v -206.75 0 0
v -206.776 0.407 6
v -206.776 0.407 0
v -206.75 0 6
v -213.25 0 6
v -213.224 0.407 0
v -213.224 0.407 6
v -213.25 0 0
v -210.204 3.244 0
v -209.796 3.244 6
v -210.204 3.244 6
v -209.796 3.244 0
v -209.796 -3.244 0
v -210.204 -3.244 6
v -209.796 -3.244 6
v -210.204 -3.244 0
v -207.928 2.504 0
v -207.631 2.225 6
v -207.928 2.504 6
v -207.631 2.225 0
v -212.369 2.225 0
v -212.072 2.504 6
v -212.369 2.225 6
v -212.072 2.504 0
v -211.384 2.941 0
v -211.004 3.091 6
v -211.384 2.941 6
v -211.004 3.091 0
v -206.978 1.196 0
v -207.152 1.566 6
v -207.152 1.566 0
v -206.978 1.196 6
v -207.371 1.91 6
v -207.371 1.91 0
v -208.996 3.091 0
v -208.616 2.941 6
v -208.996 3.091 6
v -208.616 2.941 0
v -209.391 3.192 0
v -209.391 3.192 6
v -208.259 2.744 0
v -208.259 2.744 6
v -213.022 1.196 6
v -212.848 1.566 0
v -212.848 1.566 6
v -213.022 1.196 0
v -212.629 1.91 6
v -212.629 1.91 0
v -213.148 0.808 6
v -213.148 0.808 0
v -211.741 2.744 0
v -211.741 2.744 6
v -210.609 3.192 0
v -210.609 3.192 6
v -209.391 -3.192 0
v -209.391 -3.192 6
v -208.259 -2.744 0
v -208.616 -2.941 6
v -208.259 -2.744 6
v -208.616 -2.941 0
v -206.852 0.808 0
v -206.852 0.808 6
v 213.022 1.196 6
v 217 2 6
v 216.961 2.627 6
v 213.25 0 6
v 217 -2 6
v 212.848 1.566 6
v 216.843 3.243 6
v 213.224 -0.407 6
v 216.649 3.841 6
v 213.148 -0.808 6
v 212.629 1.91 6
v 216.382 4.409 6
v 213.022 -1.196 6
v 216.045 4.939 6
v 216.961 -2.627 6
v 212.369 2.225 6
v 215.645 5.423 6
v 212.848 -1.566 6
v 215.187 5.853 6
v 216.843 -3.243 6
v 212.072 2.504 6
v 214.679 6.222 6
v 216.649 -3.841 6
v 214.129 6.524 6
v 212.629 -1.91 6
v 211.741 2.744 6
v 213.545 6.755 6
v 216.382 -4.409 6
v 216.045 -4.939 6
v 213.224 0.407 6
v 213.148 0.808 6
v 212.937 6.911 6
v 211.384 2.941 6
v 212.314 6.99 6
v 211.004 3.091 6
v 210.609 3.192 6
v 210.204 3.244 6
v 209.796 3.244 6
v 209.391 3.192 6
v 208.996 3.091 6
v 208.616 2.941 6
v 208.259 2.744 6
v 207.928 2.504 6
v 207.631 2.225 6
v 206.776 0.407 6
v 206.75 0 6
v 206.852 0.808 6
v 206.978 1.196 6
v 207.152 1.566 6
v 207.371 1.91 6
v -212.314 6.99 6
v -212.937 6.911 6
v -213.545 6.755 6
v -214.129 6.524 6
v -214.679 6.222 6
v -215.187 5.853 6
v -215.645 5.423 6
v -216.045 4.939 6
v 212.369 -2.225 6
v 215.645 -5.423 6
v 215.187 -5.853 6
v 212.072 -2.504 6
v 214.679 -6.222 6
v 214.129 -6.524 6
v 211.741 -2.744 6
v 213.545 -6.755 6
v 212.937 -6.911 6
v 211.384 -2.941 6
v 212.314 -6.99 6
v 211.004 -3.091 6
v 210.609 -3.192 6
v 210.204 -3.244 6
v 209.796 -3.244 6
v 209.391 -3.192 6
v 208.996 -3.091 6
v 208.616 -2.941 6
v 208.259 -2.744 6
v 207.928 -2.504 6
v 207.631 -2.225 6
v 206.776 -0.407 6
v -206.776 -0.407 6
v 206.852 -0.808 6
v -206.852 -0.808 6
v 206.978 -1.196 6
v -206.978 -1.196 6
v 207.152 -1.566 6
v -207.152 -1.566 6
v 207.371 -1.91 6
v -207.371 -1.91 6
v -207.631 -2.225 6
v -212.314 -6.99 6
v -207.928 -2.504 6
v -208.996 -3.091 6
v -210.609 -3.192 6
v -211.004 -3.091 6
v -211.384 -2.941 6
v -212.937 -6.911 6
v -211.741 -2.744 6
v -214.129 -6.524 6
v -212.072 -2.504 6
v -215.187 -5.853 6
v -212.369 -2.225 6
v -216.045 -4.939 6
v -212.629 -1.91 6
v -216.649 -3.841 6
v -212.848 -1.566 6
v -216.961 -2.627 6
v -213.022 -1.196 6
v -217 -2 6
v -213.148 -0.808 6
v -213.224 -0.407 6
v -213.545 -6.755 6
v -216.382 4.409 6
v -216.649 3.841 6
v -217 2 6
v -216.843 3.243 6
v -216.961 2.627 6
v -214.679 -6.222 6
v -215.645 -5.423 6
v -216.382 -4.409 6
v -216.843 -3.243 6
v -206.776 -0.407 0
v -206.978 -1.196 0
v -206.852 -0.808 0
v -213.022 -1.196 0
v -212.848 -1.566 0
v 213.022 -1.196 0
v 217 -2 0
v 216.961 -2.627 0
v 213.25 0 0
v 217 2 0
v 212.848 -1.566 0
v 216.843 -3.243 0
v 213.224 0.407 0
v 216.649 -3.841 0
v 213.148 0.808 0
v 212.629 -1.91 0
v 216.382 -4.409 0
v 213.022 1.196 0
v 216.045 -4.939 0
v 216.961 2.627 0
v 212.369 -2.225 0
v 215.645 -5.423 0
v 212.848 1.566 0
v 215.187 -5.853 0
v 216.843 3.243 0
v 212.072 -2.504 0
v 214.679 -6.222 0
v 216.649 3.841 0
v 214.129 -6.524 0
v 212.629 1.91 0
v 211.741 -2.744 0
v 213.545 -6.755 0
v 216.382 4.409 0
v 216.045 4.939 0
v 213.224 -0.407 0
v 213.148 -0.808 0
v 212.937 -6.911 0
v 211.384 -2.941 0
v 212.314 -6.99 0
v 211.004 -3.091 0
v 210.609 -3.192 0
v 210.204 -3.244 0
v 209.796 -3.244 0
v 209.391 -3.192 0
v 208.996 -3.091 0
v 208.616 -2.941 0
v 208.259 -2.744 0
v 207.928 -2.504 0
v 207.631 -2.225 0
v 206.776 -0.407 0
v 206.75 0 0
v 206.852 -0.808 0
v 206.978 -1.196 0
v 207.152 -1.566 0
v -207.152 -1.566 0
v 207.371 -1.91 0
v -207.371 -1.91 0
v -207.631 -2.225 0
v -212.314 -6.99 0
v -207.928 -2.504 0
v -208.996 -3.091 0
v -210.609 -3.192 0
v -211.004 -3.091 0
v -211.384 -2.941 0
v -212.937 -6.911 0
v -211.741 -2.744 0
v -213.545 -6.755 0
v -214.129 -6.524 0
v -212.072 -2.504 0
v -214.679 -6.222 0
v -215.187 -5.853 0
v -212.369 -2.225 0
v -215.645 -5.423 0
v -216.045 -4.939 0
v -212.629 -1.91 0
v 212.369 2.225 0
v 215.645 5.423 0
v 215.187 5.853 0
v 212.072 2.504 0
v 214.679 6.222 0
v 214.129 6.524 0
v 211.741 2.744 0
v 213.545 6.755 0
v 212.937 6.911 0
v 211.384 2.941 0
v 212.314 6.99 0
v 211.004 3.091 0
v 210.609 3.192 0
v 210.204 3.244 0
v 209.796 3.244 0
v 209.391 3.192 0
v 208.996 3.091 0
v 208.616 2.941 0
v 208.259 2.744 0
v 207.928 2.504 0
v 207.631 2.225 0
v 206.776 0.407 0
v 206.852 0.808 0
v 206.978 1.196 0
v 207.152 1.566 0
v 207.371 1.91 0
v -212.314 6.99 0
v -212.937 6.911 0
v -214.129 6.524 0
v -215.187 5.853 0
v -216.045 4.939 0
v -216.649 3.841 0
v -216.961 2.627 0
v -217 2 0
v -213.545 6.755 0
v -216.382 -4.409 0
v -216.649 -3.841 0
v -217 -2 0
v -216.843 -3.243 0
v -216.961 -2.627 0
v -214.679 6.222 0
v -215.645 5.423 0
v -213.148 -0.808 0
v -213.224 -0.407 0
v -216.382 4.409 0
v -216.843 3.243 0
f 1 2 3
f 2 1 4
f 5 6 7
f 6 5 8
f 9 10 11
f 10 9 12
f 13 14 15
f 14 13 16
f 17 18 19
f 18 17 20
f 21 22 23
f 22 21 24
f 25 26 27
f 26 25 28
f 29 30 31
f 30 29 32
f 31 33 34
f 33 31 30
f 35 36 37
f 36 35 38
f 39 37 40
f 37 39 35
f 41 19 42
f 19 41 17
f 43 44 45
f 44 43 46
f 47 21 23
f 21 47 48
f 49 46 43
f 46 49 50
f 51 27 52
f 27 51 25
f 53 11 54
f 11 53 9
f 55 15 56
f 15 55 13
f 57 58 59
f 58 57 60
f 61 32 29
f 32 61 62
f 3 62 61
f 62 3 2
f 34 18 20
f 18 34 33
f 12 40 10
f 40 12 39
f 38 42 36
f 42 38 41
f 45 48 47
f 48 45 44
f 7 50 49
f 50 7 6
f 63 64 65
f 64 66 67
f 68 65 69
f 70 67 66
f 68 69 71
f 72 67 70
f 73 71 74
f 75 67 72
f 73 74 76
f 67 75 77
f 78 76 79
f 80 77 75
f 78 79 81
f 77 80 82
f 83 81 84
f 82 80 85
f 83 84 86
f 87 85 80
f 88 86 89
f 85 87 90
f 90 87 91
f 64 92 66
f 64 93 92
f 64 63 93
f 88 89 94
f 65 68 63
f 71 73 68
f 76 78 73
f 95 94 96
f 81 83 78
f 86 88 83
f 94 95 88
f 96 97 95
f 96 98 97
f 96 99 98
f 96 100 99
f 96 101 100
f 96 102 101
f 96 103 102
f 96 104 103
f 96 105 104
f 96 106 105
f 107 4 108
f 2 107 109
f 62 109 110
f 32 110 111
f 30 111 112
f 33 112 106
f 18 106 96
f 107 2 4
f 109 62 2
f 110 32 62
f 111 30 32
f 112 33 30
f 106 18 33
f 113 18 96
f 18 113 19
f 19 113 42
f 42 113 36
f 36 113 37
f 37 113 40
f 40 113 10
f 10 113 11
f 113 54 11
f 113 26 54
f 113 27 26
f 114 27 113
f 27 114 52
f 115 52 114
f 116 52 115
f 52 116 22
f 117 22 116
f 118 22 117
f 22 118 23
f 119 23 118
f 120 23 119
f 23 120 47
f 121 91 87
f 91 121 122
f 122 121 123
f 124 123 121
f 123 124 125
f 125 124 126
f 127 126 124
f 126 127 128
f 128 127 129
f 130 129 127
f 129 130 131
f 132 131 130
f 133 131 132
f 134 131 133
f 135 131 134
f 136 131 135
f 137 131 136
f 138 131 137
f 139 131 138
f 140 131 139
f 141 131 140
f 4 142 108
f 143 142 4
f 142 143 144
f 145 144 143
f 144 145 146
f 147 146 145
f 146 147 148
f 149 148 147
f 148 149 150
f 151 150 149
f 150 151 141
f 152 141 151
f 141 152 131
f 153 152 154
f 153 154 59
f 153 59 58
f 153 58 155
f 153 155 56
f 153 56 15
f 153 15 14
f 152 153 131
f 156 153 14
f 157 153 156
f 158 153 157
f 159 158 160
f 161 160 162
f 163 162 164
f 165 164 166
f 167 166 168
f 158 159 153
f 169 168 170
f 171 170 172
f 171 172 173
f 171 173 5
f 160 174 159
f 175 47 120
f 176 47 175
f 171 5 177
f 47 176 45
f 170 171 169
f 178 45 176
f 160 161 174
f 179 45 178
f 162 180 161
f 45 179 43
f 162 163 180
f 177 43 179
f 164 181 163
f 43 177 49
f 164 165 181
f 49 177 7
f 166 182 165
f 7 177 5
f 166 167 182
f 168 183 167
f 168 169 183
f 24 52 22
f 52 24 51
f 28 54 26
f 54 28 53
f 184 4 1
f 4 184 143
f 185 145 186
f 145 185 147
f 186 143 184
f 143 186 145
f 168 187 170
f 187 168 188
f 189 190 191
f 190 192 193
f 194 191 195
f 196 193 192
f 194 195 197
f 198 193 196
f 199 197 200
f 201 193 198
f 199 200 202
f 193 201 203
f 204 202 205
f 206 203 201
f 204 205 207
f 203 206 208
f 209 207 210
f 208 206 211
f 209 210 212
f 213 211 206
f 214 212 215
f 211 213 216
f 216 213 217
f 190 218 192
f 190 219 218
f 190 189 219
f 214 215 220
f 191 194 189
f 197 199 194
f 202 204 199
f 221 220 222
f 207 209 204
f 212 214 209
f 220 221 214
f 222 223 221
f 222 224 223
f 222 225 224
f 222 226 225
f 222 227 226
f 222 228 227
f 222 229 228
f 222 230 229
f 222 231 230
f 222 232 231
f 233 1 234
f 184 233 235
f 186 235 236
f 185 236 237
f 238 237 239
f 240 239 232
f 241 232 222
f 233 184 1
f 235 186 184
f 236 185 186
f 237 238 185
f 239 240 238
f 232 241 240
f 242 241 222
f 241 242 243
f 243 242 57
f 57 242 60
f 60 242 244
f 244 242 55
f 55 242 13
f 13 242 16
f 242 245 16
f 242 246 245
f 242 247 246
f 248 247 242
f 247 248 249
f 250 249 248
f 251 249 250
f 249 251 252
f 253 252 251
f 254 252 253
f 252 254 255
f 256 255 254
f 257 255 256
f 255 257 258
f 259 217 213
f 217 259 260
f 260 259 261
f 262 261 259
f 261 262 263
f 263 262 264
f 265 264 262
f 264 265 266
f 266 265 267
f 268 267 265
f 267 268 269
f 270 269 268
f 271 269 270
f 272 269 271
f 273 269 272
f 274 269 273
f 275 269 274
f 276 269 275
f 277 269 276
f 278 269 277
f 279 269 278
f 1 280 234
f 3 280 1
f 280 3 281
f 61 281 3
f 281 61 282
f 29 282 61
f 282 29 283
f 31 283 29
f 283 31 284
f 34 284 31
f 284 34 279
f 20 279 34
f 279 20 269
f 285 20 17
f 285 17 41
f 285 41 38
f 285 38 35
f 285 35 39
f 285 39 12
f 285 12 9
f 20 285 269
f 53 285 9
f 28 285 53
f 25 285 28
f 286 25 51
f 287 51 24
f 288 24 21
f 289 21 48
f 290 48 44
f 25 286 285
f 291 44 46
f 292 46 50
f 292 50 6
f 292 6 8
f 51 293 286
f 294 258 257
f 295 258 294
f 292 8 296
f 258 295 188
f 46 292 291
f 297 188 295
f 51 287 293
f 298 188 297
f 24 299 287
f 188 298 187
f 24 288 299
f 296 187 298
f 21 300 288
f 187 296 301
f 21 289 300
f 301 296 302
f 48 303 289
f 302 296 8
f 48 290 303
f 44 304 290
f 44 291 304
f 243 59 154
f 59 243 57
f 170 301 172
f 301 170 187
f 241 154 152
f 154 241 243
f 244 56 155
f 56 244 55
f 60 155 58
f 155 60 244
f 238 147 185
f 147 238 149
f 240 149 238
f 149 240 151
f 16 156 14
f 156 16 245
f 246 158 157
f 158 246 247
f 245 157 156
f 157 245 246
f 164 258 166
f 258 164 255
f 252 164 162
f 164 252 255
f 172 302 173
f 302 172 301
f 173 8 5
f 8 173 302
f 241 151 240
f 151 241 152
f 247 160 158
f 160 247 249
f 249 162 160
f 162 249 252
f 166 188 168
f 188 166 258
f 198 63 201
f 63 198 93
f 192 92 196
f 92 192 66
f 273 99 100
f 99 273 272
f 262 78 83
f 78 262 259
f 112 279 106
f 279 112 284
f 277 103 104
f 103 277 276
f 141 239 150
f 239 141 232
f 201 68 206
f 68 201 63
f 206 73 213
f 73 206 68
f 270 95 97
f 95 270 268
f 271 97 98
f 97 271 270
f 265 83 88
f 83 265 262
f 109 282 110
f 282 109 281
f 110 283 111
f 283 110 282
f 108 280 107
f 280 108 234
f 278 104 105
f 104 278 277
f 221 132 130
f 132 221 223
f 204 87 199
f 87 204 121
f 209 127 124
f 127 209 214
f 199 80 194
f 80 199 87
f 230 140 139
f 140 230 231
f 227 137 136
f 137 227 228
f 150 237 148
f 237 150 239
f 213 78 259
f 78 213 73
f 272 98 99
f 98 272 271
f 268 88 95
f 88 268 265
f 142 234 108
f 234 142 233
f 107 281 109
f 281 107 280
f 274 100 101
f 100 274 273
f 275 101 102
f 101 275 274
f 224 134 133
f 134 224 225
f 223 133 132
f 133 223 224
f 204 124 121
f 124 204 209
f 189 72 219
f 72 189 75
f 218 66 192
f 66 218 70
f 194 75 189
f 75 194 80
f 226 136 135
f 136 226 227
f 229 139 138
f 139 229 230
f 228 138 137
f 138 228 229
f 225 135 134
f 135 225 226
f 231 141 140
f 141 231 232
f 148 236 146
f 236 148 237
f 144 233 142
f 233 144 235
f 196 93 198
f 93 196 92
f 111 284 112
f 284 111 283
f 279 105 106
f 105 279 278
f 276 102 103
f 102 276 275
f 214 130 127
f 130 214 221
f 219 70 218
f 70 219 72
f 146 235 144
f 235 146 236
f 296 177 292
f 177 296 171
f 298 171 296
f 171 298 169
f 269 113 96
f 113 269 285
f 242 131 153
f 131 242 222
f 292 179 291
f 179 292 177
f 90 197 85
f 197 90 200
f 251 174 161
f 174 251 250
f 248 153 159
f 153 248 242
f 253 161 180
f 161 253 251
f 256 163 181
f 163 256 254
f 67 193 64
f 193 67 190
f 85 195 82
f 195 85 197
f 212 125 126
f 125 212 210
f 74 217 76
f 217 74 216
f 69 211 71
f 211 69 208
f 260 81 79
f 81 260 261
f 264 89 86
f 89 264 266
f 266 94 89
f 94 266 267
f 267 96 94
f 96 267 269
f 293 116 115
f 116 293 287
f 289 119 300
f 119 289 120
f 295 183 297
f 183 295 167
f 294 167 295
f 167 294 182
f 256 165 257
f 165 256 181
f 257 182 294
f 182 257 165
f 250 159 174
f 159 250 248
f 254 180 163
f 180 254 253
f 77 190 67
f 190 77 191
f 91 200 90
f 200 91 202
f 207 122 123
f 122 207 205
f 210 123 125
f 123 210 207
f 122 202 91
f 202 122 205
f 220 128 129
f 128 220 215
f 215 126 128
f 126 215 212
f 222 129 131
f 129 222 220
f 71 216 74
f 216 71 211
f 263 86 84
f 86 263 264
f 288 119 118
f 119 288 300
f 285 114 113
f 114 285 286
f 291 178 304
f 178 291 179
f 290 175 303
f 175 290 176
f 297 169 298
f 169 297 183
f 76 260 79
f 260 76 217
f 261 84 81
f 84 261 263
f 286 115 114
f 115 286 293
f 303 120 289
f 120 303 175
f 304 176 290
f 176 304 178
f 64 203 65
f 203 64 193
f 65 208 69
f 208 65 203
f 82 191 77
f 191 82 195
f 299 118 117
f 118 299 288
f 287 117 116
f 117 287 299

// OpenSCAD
$fn = 50;


difference() {
	union() {
		hull() {
			translate(v = [-212.0000000000, 2.0000000000, 0]) {
				cylinder(h = 6, r = 5);
			}
			translate(v = [212.0000000000, 2.0000000000, 0]) {
				cylinder(h = 6, r = 5);
			}
			translate(v = [-212.0000000000, -2.0000000000, 0]) {
				cylinder(h = 6, r = 5);
			}
			translate(v = [212.0000000000, -2.0000000000, 0]) {
				cylinder(h = 6, r = 5);
			}
		}
	}
	union() {
		translate(v = [-210.0000000000, 0.0000000000, -100.0000000000]) {
			cylinder(h = 200, r = 3.2500000000);
		}
		translate(v = [-210.0000000000, 0.0000000000, -100.0000000000]) {
			cylinder(h = 200, r = 3.2500000000);
		}
		translate(v = [210.0000000000, 0.0000000000, -100.0000000000]) {
			cylinder(h = 200, r = 3.2500000000);
		}
		translate(v = [210.0000000000, 0.0000000000, -100.0000000000]) {
			cylinder(h = 200, r = 3.2500000000);
		}
	}
}
